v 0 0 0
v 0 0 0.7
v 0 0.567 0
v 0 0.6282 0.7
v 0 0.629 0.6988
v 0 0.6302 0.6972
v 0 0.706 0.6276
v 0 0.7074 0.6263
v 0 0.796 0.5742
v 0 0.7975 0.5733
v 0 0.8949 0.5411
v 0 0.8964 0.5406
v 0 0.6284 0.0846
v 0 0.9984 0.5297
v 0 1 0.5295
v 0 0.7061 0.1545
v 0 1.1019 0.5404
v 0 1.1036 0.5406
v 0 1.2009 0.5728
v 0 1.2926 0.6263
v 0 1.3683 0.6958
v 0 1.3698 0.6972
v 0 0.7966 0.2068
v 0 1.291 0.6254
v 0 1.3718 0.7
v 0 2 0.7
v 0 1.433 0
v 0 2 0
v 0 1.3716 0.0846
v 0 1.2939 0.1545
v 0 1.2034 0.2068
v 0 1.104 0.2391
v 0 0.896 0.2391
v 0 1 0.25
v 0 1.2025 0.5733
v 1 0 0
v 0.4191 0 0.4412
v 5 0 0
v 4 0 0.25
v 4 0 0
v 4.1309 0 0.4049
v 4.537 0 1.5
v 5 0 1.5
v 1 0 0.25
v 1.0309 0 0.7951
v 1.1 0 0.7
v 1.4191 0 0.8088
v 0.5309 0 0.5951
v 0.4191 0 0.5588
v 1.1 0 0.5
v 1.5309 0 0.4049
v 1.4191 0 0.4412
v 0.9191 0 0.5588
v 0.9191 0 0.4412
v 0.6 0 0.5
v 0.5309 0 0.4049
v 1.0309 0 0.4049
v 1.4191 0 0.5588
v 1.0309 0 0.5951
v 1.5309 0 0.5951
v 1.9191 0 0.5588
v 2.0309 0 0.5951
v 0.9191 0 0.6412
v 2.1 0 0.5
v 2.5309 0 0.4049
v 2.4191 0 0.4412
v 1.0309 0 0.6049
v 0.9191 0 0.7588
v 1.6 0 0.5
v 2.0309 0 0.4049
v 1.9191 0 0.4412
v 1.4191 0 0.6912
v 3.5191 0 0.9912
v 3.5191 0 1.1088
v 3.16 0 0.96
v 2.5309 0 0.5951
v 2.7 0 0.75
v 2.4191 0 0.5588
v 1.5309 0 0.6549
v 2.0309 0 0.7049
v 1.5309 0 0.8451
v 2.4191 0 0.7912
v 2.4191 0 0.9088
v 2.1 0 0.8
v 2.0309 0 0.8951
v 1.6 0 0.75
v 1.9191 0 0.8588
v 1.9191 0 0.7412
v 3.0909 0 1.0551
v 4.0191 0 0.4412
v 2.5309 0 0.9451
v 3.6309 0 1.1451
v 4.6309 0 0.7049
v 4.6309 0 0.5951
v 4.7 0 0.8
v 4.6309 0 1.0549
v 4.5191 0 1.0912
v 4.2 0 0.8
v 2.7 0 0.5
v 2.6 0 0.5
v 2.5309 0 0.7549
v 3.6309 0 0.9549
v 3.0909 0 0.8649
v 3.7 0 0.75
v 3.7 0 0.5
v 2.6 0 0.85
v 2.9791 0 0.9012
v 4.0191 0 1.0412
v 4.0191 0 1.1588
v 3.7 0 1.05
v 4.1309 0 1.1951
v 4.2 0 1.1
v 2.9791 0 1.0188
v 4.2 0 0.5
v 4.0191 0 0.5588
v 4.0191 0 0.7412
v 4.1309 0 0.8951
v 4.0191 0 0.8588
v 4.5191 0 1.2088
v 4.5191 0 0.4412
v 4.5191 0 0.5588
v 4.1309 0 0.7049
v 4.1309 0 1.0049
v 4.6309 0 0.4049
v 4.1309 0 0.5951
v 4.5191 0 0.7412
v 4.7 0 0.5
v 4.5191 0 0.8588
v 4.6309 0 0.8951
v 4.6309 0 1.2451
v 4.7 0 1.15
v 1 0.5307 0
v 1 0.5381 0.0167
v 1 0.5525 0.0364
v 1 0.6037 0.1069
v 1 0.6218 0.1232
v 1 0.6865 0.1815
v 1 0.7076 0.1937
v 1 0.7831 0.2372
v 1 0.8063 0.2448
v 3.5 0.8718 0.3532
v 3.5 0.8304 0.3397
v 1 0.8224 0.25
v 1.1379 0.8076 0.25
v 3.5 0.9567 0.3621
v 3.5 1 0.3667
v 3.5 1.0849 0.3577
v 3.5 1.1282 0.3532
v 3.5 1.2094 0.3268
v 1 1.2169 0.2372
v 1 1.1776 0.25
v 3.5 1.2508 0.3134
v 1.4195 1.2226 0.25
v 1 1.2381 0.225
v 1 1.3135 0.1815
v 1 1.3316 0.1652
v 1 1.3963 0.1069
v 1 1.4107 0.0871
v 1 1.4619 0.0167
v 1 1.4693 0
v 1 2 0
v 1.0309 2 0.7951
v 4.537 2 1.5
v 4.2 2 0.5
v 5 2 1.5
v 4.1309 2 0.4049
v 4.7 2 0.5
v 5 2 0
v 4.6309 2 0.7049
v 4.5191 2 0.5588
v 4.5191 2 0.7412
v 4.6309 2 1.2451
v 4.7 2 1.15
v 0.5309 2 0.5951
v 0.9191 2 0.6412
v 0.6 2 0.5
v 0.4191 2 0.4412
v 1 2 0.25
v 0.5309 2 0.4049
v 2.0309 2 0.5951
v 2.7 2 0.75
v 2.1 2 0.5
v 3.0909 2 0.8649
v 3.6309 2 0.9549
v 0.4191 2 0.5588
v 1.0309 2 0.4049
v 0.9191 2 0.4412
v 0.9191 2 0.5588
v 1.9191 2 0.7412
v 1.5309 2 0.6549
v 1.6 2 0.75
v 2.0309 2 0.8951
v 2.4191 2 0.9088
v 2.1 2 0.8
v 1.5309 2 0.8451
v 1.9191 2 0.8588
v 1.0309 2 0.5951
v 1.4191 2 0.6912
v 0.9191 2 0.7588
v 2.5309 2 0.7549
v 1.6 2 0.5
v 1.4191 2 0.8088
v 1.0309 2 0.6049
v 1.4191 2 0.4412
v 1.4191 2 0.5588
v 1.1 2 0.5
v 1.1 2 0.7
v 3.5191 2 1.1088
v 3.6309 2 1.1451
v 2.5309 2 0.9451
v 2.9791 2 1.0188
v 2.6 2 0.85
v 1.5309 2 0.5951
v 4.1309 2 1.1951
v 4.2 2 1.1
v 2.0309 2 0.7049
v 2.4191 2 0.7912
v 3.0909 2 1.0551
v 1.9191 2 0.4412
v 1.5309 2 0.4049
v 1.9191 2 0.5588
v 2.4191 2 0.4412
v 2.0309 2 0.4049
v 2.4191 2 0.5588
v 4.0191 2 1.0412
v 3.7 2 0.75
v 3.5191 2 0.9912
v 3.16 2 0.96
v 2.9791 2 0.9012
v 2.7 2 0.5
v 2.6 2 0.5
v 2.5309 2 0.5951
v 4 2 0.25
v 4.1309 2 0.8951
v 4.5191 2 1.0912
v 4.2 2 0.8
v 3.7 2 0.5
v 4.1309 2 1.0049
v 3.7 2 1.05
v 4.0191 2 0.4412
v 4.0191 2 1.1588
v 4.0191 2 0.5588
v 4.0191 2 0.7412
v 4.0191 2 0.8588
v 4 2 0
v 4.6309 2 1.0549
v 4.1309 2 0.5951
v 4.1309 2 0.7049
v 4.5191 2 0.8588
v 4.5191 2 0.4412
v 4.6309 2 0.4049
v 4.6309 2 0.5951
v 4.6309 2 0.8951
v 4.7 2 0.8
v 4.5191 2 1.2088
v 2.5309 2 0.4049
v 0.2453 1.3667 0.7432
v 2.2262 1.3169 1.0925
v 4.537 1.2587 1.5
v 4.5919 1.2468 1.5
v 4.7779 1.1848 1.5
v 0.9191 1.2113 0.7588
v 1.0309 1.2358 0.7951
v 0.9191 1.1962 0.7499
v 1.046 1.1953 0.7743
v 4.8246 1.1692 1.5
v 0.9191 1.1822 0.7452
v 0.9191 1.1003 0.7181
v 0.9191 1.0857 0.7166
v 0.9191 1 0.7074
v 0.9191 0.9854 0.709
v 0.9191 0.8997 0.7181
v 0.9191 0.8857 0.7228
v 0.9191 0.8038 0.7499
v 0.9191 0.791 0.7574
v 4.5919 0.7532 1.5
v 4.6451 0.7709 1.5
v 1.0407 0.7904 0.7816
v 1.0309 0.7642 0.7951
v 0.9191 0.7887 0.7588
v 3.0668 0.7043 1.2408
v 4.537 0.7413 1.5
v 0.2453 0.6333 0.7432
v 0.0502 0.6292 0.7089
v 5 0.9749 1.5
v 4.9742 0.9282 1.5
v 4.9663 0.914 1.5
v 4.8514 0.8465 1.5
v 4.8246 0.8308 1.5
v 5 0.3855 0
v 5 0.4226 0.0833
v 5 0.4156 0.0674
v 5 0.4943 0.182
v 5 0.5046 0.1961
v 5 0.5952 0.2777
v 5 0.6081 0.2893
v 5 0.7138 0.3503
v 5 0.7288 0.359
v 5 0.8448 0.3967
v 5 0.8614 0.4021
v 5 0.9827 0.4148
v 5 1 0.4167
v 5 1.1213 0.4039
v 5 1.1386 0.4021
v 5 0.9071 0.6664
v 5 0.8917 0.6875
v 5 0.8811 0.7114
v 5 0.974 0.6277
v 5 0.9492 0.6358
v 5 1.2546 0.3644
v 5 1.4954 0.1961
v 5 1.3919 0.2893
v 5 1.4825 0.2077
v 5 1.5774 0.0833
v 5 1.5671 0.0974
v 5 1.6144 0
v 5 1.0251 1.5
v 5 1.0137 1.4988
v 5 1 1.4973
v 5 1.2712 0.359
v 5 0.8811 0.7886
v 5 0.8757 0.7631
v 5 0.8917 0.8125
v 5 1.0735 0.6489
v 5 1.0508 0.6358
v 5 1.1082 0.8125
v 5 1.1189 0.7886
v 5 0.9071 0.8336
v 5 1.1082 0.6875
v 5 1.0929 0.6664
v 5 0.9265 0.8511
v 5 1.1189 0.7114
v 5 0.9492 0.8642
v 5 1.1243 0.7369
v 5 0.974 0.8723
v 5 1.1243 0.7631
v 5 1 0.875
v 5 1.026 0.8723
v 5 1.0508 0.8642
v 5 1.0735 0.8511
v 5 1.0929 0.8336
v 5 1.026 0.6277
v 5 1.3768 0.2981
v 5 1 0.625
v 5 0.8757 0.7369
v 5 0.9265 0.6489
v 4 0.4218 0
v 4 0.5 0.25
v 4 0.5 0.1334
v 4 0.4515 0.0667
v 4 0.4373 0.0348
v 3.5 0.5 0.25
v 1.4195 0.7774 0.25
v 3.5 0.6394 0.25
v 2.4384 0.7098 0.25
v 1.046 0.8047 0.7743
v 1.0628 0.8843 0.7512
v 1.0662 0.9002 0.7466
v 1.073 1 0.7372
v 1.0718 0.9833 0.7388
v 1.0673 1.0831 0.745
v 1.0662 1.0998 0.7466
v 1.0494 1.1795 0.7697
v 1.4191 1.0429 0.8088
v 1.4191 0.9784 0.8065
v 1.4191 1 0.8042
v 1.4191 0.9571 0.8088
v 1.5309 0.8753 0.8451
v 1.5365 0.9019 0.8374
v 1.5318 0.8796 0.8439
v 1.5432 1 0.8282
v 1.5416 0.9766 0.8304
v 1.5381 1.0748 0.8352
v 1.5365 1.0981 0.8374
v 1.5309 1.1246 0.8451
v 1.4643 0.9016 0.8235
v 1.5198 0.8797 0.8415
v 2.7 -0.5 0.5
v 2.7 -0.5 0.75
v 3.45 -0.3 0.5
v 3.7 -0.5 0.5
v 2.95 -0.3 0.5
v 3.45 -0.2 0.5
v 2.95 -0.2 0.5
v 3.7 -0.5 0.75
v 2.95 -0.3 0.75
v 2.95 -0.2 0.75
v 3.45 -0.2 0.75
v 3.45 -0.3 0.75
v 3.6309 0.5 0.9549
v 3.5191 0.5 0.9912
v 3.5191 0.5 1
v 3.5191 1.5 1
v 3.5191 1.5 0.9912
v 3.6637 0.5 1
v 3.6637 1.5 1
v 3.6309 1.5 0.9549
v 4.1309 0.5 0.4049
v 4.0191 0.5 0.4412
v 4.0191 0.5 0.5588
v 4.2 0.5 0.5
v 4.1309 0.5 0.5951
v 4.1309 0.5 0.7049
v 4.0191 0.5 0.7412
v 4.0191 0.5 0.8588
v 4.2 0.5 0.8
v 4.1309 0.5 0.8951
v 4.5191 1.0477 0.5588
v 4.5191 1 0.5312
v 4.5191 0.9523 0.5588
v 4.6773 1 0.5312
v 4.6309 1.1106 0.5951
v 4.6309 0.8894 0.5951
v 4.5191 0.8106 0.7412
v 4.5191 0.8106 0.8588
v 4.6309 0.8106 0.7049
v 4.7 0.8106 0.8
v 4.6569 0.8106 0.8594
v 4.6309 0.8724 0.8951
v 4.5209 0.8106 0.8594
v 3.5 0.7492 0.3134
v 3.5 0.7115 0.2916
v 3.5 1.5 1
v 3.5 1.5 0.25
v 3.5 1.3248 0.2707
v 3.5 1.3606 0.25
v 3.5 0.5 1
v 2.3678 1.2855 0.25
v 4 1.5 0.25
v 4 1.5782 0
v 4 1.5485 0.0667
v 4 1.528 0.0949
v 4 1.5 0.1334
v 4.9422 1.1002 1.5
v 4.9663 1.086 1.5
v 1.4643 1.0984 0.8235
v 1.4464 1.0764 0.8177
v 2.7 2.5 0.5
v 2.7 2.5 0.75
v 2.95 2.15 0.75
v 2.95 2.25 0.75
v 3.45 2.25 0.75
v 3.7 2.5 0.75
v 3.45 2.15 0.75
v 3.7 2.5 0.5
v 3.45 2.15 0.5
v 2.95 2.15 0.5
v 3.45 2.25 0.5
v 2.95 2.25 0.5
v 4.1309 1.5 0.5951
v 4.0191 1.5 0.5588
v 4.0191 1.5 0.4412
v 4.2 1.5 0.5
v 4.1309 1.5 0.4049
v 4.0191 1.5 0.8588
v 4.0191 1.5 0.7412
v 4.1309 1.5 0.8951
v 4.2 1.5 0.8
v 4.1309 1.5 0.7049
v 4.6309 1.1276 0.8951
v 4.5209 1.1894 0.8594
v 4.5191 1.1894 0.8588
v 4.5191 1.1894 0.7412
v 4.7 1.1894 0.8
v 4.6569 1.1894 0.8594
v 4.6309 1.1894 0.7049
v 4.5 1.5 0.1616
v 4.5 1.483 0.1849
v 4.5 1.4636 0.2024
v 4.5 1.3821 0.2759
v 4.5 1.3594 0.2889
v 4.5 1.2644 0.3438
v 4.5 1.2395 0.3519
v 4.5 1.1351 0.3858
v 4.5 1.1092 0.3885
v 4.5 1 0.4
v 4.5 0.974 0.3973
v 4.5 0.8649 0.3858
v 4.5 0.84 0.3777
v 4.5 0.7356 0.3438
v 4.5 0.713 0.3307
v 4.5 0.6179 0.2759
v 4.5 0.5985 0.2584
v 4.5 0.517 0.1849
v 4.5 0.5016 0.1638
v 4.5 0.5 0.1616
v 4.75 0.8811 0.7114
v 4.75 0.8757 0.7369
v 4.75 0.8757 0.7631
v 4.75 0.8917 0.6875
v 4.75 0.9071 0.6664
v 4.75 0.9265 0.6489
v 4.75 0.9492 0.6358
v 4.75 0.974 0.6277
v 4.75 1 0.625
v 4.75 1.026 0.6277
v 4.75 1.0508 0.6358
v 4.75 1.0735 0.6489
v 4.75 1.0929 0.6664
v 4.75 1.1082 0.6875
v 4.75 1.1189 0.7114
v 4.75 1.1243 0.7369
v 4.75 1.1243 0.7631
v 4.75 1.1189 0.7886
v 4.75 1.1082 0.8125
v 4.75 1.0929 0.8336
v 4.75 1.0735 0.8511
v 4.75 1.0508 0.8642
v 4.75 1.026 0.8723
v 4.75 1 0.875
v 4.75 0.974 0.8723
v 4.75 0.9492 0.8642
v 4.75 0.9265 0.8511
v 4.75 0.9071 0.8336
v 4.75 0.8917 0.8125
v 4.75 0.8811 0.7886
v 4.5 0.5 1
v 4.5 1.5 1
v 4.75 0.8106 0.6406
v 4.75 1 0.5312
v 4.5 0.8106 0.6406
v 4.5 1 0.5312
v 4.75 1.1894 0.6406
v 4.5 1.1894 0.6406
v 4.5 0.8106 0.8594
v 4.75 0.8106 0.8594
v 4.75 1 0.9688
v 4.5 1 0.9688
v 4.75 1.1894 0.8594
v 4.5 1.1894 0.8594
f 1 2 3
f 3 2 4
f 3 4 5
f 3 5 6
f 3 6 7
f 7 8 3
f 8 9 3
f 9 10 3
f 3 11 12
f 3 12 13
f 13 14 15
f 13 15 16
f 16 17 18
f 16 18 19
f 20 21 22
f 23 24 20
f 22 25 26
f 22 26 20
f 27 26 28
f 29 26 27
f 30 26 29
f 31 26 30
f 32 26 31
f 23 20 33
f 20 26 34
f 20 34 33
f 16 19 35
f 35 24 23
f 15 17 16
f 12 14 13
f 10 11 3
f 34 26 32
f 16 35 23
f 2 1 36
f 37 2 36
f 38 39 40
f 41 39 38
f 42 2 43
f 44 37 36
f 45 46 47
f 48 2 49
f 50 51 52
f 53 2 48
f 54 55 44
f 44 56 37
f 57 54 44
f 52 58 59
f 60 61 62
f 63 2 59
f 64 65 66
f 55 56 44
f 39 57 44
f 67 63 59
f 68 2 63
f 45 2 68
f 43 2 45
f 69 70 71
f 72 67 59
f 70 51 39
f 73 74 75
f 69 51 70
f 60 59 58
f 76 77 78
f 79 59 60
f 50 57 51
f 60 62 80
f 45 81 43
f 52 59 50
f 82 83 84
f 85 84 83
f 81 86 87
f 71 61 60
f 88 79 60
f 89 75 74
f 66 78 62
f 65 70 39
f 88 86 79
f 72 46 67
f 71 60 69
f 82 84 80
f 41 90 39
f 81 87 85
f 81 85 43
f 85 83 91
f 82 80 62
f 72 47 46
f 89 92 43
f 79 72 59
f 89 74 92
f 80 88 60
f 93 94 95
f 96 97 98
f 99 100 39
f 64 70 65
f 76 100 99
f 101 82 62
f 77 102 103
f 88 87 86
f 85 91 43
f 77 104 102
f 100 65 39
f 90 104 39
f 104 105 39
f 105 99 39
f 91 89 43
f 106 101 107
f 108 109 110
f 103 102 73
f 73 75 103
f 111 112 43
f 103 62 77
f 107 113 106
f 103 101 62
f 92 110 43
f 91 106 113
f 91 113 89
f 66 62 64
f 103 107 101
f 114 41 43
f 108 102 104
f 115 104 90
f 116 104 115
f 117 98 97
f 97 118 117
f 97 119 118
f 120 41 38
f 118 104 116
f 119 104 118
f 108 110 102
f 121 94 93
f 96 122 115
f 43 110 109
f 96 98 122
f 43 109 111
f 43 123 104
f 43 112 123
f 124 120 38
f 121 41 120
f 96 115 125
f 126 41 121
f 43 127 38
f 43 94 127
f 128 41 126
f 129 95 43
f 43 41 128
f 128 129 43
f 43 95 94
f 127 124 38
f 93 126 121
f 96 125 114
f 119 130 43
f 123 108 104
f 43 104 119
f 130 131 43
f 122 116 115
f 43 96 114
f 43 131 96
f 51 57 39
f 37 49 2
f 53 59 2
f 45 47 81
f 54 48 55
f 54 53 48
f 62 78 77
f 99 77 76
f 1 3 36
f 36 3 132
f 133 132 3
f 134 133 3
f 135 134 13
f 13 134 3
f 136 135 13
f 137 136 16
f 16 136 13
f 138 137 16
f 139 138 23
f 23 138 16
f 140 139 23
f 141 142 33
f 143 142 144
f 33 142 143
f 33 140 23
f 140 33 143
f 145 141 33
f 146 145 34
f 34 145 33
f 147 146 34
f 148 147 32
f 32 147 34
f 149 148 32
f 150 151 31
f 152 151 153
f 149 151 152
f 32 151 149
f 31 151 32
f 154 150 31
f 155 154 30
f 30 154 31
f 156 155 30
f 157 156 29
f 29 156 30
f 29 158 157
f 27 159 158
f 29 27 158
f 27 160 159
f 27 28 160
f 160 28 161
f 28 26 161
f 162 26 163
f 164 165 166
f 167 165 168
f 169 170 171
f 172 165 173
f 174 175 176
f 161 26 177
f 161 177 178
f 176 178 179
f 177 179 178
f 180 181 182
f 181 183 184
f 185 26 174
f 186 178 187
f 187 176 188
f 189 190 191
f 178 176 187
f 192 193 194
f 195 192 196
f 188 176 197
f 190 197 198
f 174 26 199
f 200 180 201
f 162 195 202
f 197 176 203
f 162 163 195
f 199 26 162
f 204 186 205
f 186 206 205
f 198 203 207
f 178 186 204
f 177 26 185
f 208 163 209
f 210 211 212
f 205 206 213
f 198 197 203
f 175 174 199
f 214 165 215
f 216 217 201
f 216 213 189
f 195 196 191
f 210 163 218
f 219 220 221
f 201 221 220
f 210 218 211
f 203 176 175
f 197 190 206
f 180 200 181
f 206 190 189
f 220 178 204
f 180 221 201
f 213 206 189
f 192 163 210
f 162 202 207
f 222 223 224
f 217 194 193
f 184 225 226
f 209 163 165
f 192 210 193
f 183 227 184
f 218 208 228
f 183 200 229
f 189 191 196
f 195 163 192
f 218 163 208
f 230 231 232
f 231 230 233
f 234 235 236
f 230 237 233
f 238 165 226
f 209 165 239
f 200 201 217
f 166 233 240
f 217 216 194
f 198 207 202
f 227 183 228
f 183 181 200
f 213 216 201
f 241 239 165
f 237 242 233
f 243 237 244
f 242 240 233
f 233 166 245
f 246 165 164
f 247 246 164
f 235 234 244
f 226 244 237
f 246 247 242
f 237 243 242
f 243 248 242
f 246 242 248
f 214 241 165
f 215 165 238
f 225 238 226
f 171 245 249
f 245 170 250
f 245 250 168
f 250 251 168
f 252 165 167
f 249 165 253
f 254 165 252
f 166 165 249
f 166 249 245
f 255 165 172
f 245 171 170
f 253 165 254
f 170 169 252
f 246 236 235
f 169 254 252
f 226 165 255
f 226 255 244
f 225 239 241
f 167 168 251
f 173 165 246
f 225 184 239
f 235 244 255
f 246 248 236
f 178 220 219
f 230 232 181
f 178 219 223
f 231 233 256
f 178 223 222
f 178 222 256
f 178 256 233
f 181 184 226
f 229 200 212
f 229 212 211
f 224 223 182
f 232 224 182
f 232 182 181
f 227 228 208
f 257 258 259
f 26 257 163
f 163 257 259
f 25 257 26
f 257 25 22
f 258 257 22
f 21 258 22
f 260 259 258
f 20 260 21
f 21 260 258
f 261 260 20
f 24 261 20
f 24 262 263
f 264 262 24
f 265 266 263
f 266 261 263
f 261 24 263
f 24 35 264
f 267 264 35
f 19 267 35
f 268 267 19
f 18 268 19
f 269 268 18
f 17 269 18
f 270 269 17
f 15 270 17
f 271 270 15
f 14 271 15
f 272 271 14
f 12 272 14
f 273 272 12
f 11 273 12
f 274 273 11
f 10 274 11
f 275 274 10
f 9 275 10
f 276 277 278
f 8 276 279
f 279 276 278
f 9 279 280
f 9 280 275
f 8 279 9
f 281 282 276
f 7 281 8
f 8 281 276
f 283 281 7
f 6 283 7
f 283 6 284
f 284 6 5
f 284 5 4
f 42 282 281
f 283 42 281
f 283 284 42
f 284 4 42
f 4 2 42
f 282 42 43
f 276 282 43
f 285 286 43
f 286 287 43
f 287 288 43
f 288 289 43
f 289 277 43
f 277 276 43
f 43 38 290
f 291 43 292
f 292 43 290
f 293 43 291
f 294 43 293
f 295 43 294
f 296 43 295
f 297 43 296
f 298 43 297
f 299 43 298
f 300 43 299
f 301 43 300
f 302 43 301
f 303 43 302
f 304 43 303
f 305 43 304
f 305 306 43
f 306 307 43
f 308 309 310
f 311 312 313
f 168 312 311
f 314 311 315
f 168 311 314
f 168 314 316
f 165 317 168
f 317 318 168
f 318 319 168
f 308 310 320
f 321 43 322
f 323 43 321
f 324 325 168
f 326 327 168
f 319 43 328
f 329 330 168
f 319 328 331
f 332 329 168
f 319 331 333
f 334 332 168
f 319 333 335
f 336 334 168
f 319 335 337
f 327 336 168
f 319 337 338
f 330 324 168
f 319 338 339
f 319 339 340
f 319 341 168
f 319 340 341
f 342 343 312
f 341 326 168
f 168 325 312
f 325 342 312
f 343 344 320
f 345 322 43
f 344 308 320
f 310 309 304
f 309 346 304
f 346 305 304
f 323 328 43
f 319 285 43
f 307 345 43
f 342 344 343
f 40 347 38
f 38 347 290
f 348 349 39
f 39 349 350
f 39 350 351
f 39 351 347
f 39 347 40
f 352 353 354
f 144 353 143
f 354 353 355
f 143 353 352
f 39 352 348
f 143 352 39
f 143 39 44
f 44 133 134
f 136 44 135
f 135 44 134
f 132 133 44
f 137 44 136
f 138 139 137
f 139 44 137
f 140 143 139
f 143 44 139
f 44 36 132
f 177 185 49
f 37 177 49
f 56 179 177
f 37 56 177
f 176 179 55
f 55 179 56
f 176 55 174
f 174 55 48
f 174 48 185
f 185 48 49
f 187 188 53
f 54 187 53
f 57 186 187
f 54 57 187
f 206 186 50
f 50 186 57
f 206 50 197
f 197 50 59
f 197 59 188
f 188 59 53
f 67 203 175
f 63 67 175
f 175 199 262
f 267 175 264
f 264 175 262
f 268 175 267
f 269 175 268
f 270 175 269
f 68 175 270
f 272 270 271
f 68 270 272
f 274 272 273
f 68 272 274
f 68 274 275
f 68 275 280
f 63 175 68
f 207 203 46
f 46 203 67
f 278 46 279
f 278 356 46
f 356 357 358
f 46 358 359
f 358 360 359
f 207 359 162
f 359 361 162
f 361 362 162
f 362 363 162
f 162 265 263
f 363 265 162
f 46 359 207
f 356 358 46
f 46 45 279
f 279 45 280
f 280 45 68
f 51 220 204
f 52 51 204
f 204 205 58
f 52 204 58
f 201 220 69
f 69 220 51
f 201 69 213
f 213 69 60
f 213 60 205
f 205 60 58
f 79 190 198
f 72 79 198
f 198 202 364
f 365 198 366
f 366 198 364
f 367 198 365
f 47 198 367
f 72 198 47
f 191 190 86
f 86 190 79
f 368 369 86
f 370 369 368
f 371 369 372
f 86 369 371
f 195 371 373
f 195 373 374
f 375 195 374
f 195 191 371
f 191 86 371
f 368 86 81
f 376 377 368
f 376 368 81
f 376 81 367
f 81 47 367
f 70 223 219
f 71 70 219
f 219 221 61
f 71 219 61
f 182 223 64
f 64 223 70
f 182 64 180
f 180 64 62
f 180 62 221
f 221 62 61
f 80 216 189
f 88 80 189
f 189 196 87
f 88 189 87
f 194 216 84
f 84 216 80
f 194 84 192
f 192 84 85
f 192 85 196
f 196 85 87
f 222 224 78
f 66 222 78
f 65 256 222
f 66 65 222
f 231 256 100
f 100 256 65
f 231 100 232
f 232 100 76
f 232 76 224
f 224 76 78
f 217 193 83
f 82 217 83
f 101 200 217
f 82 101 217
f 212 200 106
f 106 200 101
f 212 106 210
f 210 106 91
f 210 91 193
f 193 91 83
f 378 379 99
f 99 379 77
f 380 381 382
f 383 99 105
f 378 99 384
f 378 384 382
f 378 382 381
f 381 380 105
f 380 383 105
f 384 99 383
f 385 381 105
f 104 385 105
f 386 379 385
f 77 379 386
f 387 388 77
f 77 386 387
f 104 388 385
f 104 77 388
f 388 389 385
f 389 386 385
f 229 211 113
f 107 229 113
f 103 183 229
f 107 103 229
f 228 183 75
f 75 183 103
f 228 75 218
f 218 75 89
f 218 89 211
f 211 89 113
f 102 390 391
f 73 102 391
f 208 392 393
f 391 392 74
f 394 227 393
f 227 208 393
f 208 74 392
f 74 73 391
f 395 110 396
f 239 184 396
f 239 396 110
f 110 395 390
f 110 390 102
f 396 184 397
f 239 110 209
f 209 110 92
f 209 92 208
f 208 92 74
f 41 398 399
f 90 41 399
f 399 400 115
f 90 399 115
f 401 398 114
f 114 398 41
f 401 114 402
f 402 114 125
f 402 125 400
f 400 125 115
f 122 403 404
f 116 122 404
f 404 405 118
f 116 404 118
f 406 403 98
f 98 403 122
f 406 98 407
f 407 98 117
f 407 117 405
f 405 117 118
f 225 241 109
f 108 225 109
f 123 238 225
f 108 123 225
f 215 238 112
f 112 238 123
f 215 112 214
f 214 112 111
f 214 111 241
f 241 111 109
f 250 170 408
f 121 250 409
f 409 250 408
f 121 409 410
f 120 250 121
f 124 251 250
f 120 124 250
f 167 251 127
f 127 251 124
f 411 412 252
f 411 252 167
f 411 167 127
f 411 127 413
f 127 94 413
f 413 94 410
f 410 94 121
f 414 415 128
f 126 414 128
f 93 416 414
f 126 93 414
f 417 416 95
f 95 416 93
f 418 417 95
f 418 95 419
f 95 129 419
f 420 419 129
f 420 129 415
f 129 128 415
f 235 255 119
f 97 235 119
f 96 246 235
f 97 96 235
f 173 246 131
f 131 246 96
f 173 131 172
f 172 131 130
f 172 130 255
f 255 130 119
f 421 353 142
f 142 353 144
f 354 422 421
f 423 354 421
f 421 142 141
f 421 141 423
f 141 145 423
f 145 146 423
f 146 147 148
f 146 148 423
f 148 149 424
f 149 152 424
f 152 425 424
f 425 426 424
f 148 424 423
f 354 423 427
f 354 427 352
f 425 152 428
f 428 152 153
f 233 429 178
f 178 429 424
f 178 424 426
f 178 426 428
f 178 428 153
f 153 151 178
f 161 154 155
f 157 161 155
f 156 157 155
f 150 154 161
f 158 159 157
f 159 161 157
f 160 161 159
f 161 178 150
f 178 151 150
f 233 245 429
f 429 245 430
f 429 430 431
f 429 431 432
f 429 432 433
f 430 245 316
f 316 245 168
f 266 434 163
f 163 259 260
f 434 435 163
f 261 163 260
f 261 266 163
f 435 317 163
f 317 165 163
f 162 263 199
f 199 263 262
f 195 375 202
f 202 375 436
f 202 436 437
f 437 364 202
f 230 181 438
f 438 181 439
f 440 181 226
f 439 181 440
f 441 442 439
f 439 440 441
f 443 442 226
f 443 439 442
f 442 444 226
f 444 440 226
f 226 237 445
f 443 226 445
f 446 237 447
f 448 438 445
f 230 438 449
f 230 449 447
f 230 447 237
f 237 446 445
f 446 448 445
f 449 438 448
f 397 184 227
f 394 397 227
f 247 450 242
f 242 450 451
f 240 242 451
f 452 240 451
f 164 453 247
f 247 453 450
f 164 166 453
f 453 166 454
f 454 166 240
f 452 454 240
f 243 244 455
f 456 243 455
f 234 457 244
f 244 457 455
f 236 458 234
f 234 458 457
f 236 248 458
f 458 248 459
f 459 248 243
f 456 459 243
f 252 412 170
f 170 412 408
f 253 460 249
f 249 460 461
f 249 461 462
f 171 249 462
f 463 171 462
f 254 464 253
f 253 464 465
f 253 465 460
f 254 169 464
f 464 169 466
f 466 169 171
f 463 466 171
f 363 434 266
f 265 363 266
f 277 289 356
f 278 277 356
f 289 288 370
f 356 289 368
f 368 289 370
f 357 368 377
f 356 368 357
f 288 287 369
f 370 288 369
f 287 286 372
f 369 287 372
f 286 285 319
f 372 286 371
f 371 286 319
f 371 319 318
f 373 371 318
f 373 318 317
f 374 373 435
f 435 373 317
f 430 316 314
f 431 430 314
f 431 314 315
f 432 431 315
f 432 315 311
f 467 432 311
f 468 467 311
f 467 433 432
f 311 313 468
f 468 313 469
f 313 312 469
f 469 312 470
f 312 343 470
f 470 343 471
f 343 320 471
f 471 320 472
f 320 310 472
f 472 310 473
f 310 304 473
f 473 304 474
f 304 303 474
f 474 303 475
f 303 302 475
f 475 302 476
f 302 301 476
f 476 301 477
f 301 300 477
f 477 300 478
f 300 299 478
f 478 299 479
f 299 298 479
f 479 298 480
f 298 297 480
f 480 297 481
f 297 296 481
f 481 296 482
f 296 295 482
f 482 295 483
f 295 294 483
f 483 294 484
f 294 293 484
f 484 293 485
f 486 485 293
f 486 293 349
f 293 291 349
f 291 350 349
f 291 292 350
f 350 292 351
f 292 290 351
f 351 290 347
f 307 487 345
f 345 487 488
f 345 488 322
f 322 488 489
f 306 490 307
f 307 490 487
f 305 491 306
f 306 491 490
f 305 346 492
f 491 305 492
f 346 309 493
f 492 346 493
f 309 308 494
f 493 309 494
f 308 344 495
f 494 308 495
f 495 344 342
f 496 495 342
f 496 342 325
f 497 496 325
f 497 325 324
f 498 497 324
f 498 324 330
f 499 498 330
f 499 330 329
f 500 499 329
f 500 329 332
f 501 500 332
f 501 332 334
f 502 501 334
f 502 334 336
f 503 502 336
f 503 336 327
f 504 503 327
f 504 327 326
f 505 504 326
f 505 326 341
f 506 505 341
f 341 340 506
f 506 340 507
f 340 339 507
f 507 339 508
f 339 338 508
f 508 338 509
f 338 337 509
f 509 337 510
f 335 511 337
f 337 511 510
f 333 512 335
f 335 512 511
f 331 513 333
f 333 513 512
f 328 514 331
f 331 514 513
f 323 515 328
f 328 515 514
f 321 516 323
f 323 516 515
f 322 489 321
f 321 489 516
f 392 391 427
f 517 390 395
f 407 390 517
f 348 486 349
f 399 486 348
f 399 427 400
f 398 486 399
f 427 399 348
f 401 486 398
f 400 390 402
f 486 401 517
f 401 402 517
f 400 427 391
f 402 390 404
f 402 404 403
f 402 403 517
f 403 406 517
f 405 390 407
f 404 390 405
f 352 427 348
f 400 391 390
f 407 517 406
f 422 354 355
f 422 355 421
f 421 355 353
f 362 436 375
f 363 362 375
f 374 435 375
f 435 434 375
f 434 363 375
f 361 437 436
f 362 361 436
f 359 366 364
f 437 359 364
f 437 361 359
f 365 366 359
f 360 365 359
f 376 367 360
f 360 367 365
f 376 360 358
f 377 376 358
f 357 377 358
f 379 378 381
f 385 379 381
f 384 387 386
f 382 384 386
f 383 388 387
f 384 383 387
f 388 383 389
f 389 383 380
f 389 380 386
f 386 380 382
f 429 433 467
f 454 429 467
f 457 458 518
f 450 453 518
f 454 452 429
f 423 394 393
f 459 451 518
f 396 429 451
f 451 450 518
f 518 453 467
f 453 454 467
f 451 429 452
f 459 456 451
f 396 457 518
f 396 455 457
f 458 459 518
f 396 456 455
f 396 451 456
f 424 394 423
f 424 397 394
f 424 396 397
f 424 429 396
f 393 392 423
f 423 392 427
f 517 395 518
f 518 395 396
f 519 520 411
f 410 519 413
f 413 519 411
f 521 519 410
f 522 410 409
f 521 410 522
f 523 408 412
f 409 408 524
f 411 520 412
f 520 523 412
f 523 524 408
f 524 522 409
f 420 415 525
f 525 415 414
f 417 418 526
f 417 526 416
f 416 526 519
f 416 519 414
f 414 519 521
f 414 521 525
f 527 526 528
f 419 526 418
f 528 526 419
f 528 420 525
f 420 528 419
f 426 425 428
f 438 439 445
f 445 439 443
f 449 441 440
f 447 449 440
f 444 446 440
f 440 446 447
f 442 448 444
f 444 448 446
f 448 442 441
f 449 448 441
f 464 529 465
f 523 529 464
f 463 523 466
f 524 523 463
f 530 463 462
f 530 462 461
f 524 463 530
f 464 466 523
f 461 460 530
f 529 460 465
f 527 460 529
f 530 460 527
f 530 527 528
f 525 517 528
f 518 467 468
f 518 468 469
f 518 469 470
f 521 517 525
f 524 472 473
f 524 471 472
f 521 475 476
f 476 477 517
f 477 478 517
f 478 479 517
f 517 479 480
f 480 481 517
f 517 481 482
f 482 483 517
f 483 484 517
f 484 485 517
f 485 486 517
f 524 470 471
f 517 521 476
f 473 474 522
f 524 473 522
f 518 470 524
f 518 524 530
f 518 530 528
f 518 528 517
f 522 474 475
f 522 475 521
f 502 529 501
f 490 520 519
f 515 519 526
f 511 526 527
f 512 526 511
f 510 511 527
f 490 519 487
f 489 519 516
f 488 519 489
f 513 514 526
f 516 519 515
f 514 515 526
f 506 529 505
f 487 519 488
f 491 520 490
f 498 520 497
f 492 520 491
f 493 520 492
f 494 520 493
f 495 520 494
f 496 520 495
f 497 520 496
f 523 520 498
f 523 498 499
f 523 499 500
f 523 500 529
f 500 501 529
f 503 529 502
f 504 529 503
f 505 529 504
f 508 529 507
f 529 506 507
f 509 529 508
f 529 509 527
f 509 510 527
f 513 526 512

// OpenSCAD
// Trying to be a trekking pole camera mount
// jellsworth Dec 2014
//
// units = inches



difference() {
	union(){
		// base block
		cube([ 5, 2, 1.5 ], false);

		// add strap supports
		difference() {
			// add strap base
			translate( [2.7, -0.5, 0.5]) {
				cube([ 1, 3, 0.25]);
			}
			
			// cut strap holes
			translate([2.95, -0.2, 0]){
				rotate([90, 0, 0]) {
					cube([0.5, 2, 0.1], false);
				}
			}
			translate([2.95, 2.25, 0]){
				rotate([90, 0, 0]) {
					cube([0.5, 2, 0.1], false);
				}
			}
		}
	}



	// remove wedge
	translate([ 0, 0, 0.7]) {
		rotate([ 0, -10, 0]) {
			cube([ 6, 2, 1 ], false);
		}
	}

	// remove cross-cut
	translate([ 1, -0.5, 0]) {
		cube([ 3, 3, 0.25 ], false);
	}


	// remove pole channel 1
	translate([ 0, 1, -0.25]) {
		rotate([ 0, 90, 0]) {
			cylinder(h = 6, r1 = 0.5, r2 = 0.7, center = false, $fn=30);
		}
	}

	// remove pole channel 2
	translate([ -0.2, 1, 1]) {
		rotate([ 0, 80, 0]) {
			cylinder(h = 6, r1 = 0.5, r2 = 0.4, center = false, $fn=30);
		}
	}


	//cut hole for bolt
	//1/4" - 20 x 3/4" (w/ 7/16" head)
	translate([4, 1, 0.75]){
		rotate([0, 90, 0]){
			cylinder(h = 0.75, d=7/16, $fn=6);
			cylinder(h = 1.5, d=1/4, $fn=30);
		}
	}

	//cut bolt access
	translate([3.5, 0.5, 0]){
		cube([ 1, 1, 1]);
	}
	
	//reduce volume
	// lower block - bottom row
	translate([2.5, -0.5, 0.5]){
		vhole();
	}
	translate([2, -0.5, 0.5]){
		vhole();
	}
	translate([1.5, -0.5, 0.5]){
		vhole();
	}
	translate([1, -0.5, 0.5]){
		vhole();
	}
	translate([0.5, -0.5, 0.5]){
		vhole();
	}
	// lower block - upper row
	translate([2.5, -0.5, 0.85]){
		vhole();
	}
	translate([2, -0.5, 0.8]){
		vhole();
	}
	translate([1.5, -0.5, 0.75]){
		vhole();
	}
	translate([1, -0.5, 0.7]){
		vhole();
	}
	// upper block - bottom row
	translate([4.1, -0.5, 0.5]){
		vhole();
	}
	translate([4.6, -0.5, 0.5]){
		vhole();
	}
	// upper block - middle row
	translate([4.1, -0.5, 0.8]){
		vhole();
	}
	translate([4.6, -0.5, 0.8]){
		vhole();
	}
	// upper block - top row
	translate([4.1, -0.5, 1.1]){
		vhole();
	}
	translate([4.6, -0.5, 1.15]){
		vhole();
	}
	translate([3.6, -0.5, 1.05]){
		vhole();
	}
	translate([3.06, -0.5, 0.96]){
		vhole();
	}
}

module vhole() {
		rotate([-90, 0, 0]){
			cylinder(h = 3, d=0.2, $fn=5);
		}
}
